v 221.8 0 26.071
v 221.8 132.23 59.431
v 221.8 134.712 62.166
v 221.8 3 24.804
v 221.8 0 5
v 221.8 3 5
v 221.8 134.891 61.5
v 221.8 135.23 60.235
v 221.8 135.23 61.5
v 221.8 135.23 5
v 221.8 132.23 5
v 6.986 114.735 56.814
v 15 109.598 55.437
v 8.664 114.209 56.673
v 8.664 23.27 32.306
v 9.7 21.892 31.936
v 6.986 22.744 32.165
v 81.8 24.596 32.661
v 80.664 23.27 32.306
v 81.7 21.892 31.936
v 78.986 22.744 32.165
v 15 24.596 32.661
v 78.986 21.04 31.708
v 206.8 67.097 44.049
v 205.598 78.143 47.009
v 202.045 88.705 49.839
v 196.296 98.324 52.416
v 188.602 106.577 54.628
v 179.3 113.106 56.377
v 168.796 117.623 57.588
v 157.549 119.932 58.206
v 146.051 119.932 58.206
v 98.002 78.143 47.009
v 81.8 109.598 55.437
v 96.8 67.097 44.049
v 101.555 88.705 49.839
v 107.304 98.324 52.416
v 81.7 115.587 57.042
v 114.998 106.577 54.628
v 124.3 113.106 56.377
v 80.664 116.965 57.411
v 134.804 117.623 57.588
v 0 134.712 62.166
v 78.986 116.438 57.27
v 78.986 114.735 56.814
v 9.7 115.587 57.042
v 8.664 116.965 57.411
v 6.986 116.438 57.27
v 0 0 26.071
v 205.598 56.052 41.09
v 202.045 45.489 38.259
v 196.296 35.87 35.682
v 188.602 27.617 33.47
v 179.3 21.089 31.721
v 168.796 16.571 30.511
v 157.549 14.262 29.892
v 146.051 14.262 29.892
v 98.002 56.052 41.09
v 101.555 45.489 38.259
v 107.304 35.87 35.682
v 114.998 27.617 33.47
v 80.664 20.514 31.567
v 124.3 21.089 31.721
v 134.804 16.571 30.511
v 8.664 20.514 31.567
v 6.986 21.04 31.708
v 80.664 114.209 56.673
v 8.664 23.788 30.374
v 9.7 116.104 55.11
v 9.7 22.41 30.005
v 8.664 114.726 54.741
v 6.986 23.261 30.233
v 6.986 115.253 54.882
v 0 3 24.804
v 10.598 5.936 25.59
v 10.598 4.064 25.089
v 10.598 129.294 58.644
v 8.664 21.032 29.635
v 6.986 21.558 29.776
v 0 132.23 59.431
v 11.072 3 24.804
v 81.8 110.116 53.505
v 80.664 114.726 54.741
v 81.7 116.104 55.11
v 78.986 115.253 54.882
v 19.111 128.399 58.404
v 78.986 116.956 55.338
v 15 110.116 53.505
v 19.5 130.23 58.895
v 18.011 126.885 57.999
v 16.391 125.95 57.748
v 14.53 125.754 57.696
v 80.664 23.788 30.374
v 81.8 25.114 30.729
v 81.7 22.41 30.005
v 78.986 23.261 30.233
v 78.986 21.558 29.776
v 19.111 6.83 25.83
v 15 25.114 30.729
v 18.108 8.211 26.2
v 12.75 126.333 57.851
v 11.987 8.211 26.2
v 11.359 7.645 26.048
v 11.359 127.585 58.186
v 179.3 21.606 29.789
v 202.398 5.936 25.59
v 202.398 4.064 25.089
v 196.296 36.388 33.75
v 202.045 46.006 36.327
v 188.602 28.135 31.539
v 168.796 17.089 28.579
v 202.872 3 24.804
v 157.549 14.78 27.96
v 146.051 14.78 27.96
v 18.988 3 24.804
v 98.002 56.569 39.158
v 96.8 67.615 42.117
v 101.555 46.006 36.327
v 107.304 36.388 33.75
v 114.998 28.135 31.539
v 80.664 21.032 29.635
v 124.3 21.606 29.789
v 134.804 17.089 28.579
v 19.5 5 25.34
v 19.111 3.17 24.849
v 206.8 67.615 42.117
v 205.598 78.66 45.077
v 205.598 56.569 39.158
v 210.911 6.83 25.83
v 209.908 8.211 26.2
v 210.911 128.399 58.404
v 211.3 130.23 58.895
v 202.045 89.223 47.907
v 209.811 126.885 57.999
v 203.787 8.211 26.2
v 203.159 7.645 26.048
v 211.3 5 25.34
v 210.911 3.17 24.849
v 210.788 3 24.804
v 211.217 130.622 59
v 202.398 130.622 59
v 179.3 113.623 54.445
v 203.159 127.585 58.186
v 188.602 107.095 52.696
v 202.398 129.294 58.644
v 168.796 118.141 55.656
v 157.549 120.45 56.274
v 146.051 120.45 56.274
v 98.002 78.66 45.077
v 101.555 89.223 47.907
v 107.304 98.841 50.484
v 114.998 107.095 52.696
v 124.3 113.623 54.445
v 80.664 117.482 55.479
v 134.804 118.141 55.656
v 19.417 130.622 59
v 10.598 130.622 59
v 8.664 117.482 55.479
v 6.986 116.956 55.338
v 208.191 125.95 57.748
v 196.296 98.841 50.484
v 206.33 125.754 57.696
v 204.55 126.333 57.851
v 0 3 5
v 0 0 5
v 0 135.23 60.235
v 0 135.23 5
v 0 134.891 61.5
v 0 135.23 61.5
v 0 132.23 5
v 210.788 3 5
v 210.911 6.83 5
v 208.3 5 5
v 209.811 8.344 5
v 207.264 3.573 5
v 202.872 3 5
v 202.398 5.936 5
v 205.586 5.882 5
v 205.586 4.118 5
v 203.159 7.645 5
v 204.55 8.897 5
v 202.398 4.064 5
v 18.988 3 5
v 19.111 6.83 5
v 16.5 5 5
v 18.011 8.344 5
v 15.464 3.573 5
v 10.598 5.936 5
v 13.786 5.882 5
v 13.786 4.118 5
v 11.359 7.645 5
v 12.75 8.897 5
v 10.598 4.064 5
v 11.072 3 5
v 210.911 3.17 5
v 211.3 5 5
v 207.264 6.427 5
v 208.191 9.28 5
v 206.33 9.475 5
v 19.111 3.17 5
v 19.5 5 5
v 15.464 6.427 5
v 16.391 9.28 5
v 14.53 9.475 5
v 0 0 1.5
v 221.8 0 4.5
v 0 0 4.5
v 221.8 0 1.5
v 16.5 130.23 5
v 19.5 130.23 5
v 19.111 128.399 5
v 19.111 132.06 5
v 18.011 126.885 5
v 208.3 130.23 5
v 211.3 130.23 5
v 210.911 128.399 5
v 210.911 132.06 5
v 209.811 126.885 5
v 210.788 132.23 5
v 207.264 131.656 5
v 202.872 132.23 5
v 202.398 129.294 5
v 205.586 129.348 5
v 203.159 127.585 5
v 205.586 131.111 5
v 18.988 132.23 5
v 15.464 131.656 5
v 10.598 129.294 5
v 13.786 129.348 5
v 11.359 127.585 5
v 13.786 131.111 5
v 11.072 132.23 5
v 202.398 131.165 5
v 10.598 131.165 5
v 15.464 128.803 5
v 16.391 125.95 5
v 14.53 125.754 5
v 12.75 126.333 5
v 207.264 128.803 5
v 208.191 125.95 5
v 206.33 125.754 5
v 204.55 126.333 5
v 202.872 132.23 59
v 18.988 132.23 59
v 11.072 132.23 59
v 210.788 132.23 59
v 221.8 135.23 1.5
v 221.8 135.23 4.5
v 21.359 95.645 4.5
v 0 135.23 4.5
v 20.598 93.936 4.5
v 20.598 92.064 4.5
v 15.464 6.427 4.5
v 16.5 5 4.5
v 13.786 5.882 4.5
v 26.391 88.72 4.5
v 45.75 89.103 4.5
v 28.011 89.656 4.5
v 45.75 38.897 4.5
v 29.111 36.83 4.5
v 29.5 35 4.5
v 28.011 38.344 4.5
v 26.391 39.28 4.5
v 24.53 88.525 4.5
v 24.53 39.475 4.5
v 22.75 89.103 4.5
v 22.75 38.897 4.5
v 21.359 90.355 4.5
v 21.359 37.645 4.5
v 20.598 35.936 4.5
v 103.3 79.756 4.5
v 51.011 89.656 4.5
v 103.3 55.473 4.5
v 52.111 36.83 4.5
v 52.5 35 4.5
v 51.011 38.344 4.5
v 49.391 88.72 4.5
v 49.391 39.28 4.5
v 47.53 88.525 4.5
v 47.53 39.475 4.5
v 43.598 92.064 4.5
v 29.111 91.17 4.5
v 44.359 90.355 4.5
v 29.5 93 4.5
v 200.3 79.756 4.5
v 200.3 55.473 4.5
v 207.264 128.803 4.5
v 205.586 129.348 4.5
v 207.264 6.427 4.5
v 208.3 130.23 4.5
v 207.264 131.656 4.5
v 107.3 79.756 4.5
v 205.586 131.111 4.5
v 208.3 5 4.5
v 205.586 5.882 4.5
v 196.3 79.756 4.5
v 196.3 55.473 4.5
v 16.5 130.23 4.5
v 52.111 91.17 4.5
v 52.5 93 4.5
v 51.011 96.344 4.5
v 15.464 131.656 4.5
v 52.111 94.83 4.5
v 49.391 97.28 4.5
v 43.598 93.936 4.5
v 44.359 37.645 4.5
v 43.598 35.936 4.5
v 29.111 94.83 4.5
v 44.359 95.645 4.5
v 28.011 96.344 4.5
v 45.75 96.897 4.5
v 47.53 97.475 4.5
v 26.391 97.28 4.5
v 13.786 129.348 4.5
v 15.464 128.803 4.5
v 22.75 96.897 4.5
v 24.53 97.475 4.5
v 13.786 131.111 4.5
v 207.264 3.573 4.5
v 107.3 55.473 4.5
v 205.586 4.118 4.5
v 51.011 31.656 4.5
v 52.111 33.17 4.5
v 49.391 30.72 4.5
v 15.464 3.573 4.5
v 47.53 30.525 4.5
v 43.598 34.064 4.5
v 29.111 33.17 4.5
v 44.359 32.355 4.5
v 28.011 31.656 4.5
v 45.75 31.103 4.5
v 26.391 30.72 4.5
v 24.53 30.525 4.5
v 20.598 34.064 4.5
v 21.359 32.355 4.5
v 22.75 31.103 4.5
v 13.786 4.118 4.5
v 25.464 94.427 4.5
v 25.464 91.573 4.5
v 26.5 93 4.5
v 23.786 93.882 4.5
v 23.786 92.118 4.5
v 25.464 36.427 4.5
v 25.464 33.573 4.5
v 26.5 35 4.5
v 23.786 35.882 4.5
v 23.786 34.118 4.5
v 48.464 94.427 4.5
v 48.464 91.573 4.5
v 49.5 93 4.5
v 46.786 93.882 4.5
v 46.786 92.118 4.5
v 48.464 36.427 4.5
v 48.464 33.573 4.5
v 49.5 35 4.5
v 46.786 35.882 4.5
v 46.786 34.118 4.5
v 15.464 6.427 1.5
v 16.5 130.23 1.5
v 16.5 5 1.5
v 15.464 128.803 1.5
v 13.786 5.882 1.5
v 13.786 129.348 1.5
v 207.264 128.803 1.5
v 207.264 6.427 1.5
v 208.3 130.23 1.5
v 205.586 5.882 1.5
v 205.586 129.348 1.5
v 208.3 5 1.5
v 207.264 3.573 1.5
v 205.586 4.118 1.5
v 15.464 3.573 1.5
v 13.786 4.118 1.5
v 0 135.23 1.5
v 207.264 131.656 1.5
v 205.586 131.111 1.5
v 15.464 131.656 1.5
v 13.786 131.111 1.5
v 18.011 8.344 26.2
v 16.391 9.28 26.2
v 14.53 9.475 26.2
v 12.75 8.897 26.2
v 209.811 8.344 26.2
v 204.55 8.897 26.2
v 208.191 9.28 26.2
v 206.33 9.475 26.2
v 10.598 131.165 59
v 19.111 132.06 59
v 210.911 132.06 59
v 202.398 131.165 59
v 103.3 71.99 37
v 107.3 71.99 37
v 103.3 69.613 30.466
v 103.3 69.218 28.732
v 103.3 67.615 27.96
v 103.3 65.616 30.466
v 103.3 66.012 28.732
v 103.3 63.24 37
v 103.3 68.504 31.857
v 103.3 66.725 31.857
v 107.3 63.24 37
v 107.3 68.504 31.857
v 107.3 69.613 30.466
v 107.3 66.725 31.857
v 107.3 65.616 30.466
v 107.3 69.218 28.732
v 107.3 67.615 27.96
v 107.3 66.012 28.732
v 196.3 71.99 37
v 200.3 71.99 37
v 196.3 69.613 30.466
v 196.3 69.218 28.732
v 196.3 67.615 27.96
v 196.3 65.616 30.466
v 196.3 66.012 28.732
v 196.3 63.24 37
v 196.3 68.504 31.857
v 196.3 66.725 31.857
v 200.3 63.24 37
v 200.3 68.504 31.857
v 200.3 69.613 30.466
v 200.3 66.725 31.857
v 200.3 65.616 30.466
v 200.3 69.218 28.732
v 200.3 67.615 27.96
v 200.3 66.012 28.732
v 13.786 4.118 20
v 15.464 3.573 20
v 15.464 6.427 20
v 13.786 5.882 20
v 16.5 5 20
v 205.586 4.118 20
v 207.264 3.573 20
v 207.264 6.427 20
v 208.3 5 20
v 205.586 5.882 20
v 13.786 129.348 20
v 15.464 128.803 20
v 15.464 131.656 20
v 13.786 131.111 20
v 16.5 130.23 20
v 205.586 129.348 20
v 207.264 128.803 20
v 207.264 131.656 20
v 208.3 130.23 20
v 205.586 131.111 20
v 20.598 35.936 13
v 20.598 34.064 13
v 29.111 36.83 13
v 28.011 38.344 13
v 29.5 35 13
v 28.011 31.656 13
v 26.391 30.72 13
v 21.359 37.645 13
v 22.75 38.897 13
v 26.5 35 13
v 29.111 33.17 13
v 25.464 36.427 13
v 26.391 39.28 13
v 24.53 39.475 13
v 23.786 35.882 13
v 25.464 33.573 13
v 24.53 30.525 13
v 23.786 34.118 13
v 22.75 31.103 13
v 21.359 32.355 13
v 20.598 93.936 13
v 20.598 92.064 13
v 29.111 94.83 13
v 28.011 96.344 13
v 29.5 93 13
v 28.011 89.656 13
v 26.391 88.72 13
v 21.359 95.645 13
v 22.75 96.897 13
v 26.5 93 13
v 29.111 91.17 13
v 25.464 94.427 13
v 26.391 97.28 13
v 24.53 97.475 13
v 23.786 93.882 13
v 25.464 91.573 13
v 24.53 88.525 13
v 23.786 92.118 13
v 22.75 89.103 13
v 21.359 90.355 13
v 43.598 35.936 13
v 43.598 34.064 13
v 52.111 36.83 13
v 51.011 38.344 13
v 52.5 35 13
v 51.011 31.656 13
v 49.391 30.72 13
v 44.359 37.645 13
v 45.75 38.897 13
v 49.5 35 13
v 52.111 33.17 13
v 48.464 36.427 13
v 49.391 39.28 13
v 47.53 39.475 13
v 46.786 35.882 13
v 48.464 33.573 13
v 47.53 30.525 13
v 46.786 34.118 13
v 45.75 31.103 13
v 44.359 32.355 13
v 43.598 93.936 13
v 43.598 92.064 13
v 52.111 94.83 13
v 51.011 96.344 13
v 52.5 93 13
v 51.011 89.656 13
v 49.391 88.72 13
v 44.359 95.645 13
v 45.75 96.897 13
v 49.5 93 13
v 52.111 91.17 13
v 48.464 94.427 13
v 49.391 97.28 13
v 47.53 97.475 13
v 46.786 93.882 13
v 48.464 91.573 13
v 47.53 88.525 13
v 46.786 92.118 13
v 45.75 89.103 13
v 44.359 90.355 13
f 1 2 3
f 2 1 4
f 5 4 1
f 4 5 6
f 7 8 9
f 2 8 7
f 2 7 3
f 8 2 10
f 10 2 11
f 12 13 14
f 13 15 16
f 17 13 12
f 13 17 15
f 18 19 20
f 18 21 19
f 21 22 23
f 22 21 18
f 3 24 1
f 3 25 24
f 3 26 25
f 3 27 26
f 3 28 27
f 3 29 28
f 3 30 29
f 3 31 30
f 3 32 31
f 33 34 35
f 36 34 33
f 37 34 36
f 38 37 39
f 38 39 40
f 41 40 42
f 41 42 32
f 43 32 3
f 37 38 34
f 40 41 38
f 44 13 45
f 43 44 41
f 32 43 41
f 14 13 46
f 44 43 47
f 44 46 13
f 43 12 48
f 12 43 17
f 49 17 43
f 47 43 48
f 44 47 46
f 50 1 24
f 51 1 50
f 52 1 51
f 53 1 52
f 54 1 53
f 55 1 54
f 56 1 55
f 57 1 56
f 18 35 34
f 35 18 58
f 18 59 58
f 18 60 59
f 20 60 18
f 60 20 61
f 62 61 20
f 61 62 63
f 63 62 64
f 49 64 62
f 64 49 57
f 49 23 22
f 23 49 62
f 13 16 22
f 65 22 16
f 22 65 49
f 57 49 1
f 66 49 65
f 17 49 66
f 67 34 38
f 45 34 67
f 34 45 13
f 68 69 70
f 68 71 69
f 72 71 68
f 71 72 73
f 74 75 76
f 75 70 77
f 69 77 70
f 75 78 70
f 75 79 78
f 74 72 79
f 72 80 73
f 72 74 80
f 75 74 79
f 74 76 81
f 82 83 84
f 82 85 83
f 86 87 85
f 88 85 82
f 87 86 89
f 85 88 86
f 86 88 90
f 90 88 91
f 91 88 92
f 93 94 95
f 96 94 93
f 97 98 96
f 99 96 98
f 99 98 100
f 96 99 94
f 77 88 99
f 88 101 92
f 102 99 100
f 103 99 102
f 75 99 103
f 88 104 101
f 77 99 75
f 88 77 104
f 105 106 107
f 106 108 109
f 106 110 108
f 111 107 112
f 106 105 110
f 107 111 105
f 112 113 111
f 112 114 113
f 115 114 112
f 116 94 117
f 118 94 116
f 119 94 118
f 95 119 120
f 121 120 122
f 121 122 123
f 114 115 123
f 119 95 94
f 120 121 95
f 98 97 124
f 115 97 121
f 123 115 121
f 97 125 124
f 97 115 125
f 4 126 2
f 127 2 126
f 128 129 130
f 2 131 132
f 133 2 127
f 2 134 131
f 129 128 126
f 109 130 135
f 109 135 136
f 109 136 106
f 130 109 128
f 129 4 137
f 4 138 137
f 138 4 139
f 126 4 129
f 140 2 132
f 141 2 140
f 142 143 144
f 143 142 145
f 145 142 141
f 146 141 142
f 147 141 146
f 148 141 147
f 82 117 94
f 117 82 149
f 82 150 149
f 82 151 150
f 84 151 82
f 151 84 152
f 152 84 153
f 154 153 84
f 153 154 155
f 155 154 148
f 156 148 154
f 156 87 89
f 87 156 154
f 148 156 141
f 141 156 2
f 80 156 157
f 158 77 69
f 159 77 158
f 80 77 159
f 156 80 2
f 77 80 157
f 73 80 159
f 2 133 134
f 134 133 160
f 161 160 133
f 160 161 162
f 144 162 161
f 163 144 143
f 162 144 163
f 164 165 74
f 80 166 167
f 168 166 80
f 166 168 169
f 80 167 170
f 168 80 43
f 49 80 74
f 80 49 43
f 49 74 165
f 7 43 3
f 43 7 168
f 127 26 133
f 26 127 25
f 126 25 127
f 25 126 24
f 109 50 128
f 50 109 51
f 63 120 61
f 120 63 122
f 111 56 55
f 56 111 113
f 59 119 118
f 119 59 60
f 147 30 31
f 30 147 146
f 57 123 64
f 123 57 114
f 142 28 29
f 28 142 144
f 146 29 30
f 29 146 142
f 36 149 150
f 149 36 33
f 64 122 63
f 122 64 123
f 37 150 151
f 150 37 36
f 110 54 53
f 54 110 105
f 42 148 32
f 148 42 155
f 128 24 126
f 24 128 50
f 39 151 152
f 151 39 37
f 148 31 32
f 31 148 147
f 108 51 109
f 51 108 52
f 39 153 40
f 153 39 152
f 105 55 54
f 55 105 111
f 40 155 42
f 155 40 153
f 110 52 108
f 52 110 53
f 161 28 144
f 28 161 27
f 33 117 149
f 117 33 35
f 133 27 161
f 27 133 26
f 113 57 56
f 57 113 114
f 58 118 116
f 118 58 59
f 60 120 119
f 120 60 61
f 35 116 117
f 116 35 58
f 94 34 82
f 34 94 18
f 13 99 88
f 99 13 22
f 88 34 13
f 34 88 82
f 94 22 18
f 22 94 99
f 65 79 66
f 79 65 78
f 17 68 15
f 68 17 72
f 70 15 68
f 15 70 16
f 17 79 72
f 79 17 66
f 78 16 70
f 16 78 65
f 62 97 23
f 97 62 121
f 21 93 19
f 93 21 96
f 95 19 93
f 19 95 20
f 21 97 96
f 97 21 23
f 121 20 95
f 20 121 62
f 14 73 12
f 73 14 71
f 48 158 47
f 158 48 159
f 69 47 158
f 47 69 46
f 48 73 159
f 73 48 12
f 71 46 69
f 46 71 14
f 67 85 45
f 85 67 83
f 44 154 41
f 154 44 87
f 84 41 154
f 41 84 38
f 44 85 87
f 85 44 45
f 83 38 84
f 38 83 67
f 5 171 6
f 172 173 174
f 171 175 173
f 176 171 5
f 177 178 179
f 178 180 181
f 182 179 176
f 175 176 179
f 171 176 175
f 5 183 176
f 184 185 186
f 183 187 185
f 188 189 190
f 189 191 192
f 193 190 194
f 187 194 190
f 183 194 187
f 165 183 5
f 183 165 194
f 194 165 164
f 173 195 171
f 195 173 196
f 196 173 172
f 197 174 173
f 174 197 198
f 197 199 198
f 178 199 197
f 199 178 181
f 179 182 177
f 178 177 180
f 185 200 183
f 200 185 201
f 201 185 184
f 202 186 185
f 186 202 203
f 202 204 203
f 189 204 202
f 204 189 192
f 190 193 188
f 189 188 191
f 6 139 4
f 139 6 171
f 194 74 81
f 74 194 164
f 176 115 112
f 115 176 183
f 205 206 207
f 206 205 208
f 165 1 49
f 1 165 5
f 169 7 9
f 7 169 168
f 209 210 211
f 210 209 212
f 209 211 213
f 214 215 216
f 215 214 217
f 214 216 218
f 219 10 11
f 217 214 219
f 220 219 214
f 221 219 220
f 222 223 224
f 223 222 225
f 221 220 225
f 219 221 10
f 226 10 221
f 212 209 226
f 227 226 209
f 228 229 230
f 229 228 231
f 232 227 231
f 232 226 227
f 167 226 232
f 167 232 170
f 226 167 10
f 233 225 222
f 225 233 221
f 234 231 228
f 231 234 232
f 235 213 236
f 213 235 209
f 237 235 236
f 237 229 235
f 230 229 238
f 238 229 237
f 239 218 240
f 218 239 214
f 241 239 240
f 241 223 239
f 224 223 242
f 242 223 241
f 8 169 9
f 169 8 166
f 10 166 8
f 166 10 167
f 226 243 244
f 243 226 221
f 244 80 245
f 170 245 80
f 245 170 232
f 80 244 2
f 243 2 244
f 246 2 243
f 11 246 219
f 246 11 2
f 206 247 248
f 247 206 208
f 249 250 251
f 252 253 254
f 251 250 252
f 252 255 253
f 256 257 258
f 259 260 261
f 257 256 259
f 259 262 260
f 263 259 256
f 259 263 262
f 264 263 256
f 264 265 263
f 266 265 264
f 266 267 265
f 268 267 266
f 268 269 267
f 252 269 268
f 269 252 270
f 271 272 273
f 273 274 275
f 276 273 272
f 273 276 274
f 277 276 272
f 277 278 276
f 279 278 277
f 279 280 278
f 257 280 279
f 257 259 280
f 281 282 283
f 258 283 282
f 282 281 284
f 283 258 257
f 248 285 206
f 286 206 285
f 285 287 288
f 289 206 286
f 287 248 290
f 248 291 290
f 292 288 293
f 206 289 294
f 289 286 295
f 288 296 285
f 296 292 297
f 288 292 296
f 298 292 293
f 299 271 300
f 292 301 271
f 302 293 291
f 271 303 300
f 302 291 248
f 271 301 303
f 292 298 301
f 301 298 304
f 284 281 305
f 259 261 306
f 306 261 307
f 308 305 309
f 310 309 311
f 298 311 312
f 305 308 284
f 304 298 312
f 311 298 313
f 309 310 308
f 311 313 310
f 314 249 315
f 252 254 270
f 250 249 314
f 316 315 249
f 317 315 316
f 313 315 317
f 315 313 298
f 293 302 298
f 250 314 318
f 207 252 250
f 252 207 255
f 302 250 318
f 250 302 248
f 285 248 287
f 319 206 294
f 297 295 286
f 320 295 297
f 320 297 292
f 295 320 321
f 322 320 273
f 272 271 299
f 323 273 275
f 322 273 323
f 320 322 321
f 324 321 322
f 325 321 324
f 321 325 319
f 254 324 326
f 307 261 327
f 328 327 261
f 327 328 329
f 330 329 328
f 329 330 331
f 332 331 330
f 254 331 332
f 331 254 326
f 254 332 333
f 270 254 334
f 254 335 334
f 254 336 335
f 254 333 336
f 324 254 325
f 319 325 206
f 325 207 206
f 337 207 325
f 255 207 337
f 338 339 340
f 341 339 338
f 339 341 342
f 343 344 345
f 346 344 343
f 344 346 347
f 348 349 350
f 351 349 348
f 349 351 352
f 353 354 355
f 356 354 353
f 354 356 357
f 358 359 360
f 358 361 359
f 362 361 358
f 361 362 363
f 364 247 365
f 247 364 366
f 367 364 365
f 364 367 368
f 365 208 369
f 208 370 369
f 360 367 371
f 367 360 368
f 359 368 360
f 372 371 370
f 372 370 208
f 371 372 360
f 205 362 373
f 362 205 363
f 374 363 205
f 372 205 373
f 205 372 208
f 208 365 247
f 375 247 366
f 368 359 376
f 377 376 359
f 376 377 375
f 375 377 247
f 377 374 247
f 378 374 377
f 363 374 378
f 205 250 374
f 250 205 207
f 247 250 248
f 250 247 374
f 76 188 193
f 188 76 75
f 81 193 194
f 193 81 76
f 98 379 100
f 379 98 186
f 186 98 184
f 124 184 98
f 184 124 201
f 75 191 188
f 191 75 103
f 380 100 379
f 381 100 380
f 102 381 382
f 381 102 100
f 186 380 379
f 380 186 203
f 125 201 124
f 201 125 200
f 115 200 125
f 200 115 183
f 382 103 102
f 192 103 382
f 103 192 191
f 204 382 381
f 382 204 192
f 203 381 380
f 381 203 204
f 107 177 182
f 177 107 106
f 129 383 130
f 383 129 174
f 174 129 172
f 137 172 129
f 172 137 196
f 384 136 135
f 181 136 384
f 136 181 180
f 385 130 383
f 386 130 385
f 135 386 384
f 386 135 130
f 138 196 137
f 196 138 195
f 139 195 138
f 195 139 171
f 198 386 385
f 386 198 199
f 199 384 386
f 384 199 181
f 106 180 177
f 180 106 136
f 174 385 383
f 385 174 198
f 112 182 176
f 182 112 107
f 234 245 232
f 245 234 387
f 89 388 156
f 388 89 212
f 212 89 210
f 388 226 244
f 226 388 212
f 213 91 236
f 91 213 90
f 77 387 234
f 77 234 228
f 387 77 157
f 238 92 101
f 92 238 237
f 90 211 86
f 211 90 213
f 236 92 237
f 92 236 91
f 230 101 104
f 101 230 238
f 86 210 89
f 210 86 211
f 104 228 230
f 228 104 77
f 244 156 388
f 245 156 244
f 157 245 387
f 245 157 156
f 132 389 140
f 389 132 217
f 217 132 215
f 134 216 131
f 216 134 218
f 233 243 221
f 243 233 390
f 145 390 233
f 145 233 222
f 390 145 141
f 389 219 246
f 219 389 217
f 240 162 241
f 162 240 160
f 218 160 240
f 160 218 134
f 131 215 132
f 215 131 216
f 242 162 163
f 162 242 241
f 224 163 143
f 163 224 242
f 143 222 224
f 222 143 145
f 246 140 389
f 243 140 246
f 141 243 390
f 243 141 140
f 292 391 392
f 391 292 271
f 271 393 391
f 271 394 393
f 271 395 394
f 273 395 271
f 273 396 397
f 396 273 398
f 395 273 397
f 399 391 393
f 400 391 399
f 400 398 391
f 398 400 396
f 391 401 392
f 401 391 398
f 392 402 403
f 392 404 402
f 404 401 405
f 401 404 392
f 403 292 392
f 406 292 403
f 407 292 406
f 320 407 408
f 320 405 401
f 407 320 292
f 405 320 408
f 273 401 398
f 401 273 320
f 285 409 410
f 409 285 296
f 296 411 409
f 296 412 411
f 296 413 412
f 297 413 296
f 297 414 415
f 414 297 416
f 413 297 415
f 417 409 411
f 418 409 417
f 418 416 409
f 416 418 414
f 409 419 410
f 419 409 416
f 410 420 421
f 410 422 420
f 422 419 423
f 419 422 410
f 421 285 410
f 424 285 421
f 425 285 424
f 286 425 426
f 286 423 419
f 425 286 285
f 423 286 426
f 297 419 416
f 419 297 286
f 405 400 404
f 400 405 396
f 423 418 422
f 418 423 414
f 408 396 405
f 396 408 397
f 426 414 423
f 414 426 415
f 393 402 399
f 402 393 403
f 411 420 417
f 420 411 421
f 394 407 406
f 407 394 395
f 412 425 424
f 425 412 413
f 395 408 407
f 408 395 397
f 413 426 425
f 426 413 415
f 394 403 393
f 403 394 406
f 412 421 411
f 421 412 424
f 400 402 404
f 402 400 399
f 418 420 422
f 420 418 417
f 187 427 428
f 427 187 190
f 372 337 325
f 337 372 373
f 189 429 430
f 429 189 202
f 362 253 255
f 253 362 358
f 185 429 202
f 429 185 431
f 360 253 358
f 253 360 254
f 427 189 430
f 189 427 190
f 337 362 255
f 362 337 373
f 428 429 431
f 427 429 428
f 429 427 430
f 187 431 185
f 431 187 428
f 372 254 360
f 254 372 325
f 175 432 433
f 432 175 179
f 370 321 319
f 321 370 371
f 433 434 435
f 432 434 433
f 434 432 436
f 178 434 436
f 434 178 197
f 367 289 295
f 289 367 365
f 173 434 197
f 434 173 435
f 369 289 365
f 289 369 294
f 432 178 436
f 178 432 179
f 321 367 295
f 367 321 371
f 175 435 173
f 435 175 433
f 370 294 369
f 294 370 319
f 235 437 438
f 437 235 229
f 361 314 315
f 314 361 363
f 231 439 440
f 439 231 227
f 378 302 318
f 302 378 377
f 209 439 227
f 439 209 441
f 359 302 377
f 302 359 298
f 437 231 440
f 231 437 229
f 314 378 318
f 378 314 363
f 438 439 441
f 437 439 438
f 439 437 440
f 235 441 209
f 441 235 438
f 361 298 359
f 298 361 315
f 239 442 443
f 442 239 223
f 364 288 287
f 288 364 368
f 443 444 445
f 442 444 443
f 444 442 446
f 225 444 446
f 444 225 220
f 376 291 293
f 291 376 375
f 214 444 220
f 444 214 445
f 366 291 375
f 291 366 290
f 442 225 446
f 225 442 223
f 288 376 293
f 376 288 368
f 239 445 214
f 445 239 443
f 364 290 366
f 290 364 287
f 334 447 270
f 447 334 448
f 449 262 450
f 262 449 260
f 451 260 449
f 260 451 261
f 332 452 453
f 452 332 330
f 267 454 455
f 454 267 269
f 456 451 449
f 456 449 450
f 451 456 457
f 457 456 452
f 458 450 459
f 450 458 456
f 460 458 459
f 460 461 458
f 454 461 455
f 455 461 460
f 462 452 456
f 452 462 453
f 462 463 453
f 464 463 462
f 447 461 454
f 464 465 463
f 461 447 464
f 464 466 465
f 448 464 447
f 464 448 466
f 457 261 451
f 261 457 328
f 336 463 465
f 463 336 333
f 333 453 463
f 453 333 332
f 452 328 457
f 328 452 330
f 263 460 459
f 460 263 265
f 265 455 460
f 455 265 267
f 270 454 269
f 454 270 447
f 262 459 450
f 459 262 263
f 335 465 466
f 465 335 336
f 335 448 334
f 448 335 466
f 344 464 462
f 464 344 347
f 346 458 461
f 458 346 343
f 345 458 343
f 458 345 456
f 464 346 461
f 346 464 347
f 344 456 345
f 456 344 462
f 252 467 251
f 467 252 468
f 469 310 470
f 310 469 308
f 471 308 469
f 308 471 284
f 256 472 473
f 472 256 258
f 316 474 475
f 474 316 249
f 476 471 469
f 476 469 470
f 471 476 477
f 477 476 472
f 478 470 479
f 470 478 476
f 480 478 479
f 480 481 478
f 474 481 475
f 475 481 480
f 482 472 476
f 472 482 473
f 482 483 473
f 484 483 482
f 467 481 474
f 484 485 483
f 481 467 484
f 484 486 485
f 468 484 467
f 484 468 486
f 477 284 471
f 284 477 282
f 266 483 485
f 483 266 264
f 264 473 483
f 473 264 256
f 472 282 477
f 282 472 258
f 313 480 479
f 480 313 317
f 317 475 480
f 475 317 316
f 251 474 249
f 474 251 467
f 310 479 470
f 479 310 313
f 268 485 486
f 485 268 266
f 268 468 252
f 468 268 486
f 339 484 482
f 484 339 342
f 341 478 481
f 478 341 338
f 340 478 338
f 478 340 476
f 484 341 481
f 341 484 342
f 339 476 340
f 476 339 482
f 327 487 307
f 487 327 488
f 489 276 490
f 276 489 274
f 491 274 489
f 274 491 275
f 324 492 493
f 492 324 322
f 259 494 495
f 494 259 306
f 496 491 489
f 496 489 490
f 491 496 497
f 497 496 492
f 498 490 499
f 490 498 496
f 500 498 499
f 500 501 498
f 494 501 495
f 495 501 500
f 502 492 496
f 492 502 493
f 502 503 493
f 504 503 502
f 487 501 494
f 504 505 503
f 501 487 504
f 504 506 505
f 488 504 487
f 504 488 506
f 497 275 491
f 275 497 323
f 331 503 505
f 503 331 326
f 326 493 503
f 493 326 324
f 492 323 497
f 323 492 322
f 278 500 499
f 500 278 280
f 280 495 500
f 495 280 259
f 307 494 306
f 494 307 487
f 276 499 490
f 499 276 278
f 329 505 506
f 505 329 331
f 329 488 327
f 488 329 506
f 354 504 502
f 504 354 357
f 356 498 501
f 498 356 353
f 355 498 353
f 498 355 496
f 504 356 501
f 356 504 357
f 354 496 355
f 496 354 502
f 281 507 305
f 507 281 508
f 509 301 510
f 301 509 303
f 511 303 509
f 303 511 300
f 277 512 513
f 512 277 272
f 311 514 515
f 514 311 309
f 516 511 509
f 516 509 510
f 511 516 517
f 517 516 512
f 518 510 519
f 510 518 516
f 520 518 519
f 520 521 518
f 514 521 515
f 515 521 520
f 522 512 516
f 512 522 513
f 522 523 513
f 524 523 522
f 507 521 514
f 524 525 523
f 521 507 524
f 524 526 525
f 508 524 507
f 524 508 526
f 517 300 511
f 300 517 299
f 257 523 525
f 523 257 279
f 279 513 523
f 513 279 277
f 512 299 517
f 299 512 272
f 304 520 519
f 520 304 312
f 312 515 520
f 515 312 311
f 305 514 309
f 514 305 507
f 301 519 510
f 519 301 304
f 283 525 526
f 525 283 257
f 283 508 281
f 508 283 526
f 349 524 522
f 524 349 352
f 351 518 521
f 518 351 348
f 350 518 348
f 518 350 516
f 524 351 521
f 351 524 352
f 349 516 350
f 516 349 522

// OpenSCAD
dial_hole_d=110;
spacer = 15;
display_x = 66.8;
display_y = 88;
tot_x = dial_hole_d + 3*spacer+display_x;
tot_y = dial_hole_d + 2*spacer;
dial_x = dial_hole_d/2+spacer+spacer+display_x;
dial_y = dial_hole_d/2+spacer;

base_y = cos(15)*tot_y;

module top_plate(){
translate([0,0,24])
rotate([15,0,0]){
difference(){
    // top plate
    cube([tot_x,tot_y,2]);
    // cutouts
    translate([dial_x,dial_y,-1])cylinder(d=dial_hole_d,h=5);
    dispx = spacer;
    dispy = (tot_y-display_y)/2;
    translate([dispx,dispy,-1])cube([display_x,display_y,5]);
    blx = dispx-6.8;
    bly = dispy-2.8;
    dx = 72;
    dy= 97;
    translate([blx,bly,-1])cylinder(d=3,h=5);
    translate([blx+dx,bly,-1])cylinder(d=3,h=5);
    translate([blx,bly+dy,-1])cylinder(d=3,h=5);
    translate([blx+dx,bly+dy,-1])cylinder(d=3,h=5);
    
}
    // dummy dial block
    //translate([dial_x,dial_y,-23])cylinder(d=dial_hole_d,h=23);
}
}

// whole top frame
module top(){
difference(){
    union(){
        top_plate();
        // front wall
        translate([0,0,5])cube([tot_x,3,20]);
        translate([0,base_y-3,5])cube([tot_x,3,56.5]);
        // base plate
        color("blue")translate([0,0,1.5])cube([tot_x,base_y,3]);
        
        translate([15,5,5])cylinder(d=pi_standoff_d,h=21.2);
        translate([tot_x-15,5,5])cylinder(d=pi_standoff_d,h=21.2);
        translate([15,base_y-5,5])cylinder(d=pi_standoff_d,h=54);
        translate([tot_x-15,base_y-5,5])cylinder(d=pi_standoff_d,h=54);
    }
    // lop off front
    translate([-1,-5,1])cube([tot_x+10,5,tot_x+10]);
    
    translate([15,5,0])cylinder(d=pi_hole_d,h=20);
    translate([tot_x-15,5,0])cylinder(d=pi_hole_d,h=20);
    translate([15,base_y-5,0])cylinder(d=pi_hole_d,h=20);
    translate([tot_x-15,base_y-5,0])cylinder(d=pi_hole_d,h=20);
}
}
top();

bracket_x = 4;
bracket_y = 25;
bracket_z = 34;
bracket_xpos=dial_x;
bracket_ypos=base_y/2;
mounting_space = 89;
plate_z = 3;
slot_d = 7;

module bracket(){
    linear_extrude(height = bracket_z, scale = [1,.35],center=true) {
        square(size = [bracket_x, bracket_y],center=true);
    }
}
// dial mount brackets
difference(){
    translate([-(mounting_space/2+bracket_x/2)+bracket_xpos,bracket_ypos,bracket_z/2+plate_z])
    {
        bracket();
        translate([mounting_space+bracket_x,0,0])bracket();
    }
    translate([bracket_xpos,bracket_ypos,bracket_z+plate_z-slot_d+.01])rotate([0,90,0])cylinder(d=4.1,h=100,center=true);//cube([mounting_space+3*bracket_x,slot_d,slot_d],center=true);
}

pi_x = 23;
pi_y = 58;
pi_standoff_d = 9;
pi_hole_d = 3;
pi_standoff_h = 10;
module pimount(){
    for (x = [0, pi_x]){for (y = [0,pi_y]){
        translate([x, y, plate_z])difference(){cylinder(d = pi_standoff_d, h = pi_standoff_h);cylinder(d = pi_hole_d, h = pi_standoff_h);}
    }}
    
}
translate([25,35,0])pimount();
